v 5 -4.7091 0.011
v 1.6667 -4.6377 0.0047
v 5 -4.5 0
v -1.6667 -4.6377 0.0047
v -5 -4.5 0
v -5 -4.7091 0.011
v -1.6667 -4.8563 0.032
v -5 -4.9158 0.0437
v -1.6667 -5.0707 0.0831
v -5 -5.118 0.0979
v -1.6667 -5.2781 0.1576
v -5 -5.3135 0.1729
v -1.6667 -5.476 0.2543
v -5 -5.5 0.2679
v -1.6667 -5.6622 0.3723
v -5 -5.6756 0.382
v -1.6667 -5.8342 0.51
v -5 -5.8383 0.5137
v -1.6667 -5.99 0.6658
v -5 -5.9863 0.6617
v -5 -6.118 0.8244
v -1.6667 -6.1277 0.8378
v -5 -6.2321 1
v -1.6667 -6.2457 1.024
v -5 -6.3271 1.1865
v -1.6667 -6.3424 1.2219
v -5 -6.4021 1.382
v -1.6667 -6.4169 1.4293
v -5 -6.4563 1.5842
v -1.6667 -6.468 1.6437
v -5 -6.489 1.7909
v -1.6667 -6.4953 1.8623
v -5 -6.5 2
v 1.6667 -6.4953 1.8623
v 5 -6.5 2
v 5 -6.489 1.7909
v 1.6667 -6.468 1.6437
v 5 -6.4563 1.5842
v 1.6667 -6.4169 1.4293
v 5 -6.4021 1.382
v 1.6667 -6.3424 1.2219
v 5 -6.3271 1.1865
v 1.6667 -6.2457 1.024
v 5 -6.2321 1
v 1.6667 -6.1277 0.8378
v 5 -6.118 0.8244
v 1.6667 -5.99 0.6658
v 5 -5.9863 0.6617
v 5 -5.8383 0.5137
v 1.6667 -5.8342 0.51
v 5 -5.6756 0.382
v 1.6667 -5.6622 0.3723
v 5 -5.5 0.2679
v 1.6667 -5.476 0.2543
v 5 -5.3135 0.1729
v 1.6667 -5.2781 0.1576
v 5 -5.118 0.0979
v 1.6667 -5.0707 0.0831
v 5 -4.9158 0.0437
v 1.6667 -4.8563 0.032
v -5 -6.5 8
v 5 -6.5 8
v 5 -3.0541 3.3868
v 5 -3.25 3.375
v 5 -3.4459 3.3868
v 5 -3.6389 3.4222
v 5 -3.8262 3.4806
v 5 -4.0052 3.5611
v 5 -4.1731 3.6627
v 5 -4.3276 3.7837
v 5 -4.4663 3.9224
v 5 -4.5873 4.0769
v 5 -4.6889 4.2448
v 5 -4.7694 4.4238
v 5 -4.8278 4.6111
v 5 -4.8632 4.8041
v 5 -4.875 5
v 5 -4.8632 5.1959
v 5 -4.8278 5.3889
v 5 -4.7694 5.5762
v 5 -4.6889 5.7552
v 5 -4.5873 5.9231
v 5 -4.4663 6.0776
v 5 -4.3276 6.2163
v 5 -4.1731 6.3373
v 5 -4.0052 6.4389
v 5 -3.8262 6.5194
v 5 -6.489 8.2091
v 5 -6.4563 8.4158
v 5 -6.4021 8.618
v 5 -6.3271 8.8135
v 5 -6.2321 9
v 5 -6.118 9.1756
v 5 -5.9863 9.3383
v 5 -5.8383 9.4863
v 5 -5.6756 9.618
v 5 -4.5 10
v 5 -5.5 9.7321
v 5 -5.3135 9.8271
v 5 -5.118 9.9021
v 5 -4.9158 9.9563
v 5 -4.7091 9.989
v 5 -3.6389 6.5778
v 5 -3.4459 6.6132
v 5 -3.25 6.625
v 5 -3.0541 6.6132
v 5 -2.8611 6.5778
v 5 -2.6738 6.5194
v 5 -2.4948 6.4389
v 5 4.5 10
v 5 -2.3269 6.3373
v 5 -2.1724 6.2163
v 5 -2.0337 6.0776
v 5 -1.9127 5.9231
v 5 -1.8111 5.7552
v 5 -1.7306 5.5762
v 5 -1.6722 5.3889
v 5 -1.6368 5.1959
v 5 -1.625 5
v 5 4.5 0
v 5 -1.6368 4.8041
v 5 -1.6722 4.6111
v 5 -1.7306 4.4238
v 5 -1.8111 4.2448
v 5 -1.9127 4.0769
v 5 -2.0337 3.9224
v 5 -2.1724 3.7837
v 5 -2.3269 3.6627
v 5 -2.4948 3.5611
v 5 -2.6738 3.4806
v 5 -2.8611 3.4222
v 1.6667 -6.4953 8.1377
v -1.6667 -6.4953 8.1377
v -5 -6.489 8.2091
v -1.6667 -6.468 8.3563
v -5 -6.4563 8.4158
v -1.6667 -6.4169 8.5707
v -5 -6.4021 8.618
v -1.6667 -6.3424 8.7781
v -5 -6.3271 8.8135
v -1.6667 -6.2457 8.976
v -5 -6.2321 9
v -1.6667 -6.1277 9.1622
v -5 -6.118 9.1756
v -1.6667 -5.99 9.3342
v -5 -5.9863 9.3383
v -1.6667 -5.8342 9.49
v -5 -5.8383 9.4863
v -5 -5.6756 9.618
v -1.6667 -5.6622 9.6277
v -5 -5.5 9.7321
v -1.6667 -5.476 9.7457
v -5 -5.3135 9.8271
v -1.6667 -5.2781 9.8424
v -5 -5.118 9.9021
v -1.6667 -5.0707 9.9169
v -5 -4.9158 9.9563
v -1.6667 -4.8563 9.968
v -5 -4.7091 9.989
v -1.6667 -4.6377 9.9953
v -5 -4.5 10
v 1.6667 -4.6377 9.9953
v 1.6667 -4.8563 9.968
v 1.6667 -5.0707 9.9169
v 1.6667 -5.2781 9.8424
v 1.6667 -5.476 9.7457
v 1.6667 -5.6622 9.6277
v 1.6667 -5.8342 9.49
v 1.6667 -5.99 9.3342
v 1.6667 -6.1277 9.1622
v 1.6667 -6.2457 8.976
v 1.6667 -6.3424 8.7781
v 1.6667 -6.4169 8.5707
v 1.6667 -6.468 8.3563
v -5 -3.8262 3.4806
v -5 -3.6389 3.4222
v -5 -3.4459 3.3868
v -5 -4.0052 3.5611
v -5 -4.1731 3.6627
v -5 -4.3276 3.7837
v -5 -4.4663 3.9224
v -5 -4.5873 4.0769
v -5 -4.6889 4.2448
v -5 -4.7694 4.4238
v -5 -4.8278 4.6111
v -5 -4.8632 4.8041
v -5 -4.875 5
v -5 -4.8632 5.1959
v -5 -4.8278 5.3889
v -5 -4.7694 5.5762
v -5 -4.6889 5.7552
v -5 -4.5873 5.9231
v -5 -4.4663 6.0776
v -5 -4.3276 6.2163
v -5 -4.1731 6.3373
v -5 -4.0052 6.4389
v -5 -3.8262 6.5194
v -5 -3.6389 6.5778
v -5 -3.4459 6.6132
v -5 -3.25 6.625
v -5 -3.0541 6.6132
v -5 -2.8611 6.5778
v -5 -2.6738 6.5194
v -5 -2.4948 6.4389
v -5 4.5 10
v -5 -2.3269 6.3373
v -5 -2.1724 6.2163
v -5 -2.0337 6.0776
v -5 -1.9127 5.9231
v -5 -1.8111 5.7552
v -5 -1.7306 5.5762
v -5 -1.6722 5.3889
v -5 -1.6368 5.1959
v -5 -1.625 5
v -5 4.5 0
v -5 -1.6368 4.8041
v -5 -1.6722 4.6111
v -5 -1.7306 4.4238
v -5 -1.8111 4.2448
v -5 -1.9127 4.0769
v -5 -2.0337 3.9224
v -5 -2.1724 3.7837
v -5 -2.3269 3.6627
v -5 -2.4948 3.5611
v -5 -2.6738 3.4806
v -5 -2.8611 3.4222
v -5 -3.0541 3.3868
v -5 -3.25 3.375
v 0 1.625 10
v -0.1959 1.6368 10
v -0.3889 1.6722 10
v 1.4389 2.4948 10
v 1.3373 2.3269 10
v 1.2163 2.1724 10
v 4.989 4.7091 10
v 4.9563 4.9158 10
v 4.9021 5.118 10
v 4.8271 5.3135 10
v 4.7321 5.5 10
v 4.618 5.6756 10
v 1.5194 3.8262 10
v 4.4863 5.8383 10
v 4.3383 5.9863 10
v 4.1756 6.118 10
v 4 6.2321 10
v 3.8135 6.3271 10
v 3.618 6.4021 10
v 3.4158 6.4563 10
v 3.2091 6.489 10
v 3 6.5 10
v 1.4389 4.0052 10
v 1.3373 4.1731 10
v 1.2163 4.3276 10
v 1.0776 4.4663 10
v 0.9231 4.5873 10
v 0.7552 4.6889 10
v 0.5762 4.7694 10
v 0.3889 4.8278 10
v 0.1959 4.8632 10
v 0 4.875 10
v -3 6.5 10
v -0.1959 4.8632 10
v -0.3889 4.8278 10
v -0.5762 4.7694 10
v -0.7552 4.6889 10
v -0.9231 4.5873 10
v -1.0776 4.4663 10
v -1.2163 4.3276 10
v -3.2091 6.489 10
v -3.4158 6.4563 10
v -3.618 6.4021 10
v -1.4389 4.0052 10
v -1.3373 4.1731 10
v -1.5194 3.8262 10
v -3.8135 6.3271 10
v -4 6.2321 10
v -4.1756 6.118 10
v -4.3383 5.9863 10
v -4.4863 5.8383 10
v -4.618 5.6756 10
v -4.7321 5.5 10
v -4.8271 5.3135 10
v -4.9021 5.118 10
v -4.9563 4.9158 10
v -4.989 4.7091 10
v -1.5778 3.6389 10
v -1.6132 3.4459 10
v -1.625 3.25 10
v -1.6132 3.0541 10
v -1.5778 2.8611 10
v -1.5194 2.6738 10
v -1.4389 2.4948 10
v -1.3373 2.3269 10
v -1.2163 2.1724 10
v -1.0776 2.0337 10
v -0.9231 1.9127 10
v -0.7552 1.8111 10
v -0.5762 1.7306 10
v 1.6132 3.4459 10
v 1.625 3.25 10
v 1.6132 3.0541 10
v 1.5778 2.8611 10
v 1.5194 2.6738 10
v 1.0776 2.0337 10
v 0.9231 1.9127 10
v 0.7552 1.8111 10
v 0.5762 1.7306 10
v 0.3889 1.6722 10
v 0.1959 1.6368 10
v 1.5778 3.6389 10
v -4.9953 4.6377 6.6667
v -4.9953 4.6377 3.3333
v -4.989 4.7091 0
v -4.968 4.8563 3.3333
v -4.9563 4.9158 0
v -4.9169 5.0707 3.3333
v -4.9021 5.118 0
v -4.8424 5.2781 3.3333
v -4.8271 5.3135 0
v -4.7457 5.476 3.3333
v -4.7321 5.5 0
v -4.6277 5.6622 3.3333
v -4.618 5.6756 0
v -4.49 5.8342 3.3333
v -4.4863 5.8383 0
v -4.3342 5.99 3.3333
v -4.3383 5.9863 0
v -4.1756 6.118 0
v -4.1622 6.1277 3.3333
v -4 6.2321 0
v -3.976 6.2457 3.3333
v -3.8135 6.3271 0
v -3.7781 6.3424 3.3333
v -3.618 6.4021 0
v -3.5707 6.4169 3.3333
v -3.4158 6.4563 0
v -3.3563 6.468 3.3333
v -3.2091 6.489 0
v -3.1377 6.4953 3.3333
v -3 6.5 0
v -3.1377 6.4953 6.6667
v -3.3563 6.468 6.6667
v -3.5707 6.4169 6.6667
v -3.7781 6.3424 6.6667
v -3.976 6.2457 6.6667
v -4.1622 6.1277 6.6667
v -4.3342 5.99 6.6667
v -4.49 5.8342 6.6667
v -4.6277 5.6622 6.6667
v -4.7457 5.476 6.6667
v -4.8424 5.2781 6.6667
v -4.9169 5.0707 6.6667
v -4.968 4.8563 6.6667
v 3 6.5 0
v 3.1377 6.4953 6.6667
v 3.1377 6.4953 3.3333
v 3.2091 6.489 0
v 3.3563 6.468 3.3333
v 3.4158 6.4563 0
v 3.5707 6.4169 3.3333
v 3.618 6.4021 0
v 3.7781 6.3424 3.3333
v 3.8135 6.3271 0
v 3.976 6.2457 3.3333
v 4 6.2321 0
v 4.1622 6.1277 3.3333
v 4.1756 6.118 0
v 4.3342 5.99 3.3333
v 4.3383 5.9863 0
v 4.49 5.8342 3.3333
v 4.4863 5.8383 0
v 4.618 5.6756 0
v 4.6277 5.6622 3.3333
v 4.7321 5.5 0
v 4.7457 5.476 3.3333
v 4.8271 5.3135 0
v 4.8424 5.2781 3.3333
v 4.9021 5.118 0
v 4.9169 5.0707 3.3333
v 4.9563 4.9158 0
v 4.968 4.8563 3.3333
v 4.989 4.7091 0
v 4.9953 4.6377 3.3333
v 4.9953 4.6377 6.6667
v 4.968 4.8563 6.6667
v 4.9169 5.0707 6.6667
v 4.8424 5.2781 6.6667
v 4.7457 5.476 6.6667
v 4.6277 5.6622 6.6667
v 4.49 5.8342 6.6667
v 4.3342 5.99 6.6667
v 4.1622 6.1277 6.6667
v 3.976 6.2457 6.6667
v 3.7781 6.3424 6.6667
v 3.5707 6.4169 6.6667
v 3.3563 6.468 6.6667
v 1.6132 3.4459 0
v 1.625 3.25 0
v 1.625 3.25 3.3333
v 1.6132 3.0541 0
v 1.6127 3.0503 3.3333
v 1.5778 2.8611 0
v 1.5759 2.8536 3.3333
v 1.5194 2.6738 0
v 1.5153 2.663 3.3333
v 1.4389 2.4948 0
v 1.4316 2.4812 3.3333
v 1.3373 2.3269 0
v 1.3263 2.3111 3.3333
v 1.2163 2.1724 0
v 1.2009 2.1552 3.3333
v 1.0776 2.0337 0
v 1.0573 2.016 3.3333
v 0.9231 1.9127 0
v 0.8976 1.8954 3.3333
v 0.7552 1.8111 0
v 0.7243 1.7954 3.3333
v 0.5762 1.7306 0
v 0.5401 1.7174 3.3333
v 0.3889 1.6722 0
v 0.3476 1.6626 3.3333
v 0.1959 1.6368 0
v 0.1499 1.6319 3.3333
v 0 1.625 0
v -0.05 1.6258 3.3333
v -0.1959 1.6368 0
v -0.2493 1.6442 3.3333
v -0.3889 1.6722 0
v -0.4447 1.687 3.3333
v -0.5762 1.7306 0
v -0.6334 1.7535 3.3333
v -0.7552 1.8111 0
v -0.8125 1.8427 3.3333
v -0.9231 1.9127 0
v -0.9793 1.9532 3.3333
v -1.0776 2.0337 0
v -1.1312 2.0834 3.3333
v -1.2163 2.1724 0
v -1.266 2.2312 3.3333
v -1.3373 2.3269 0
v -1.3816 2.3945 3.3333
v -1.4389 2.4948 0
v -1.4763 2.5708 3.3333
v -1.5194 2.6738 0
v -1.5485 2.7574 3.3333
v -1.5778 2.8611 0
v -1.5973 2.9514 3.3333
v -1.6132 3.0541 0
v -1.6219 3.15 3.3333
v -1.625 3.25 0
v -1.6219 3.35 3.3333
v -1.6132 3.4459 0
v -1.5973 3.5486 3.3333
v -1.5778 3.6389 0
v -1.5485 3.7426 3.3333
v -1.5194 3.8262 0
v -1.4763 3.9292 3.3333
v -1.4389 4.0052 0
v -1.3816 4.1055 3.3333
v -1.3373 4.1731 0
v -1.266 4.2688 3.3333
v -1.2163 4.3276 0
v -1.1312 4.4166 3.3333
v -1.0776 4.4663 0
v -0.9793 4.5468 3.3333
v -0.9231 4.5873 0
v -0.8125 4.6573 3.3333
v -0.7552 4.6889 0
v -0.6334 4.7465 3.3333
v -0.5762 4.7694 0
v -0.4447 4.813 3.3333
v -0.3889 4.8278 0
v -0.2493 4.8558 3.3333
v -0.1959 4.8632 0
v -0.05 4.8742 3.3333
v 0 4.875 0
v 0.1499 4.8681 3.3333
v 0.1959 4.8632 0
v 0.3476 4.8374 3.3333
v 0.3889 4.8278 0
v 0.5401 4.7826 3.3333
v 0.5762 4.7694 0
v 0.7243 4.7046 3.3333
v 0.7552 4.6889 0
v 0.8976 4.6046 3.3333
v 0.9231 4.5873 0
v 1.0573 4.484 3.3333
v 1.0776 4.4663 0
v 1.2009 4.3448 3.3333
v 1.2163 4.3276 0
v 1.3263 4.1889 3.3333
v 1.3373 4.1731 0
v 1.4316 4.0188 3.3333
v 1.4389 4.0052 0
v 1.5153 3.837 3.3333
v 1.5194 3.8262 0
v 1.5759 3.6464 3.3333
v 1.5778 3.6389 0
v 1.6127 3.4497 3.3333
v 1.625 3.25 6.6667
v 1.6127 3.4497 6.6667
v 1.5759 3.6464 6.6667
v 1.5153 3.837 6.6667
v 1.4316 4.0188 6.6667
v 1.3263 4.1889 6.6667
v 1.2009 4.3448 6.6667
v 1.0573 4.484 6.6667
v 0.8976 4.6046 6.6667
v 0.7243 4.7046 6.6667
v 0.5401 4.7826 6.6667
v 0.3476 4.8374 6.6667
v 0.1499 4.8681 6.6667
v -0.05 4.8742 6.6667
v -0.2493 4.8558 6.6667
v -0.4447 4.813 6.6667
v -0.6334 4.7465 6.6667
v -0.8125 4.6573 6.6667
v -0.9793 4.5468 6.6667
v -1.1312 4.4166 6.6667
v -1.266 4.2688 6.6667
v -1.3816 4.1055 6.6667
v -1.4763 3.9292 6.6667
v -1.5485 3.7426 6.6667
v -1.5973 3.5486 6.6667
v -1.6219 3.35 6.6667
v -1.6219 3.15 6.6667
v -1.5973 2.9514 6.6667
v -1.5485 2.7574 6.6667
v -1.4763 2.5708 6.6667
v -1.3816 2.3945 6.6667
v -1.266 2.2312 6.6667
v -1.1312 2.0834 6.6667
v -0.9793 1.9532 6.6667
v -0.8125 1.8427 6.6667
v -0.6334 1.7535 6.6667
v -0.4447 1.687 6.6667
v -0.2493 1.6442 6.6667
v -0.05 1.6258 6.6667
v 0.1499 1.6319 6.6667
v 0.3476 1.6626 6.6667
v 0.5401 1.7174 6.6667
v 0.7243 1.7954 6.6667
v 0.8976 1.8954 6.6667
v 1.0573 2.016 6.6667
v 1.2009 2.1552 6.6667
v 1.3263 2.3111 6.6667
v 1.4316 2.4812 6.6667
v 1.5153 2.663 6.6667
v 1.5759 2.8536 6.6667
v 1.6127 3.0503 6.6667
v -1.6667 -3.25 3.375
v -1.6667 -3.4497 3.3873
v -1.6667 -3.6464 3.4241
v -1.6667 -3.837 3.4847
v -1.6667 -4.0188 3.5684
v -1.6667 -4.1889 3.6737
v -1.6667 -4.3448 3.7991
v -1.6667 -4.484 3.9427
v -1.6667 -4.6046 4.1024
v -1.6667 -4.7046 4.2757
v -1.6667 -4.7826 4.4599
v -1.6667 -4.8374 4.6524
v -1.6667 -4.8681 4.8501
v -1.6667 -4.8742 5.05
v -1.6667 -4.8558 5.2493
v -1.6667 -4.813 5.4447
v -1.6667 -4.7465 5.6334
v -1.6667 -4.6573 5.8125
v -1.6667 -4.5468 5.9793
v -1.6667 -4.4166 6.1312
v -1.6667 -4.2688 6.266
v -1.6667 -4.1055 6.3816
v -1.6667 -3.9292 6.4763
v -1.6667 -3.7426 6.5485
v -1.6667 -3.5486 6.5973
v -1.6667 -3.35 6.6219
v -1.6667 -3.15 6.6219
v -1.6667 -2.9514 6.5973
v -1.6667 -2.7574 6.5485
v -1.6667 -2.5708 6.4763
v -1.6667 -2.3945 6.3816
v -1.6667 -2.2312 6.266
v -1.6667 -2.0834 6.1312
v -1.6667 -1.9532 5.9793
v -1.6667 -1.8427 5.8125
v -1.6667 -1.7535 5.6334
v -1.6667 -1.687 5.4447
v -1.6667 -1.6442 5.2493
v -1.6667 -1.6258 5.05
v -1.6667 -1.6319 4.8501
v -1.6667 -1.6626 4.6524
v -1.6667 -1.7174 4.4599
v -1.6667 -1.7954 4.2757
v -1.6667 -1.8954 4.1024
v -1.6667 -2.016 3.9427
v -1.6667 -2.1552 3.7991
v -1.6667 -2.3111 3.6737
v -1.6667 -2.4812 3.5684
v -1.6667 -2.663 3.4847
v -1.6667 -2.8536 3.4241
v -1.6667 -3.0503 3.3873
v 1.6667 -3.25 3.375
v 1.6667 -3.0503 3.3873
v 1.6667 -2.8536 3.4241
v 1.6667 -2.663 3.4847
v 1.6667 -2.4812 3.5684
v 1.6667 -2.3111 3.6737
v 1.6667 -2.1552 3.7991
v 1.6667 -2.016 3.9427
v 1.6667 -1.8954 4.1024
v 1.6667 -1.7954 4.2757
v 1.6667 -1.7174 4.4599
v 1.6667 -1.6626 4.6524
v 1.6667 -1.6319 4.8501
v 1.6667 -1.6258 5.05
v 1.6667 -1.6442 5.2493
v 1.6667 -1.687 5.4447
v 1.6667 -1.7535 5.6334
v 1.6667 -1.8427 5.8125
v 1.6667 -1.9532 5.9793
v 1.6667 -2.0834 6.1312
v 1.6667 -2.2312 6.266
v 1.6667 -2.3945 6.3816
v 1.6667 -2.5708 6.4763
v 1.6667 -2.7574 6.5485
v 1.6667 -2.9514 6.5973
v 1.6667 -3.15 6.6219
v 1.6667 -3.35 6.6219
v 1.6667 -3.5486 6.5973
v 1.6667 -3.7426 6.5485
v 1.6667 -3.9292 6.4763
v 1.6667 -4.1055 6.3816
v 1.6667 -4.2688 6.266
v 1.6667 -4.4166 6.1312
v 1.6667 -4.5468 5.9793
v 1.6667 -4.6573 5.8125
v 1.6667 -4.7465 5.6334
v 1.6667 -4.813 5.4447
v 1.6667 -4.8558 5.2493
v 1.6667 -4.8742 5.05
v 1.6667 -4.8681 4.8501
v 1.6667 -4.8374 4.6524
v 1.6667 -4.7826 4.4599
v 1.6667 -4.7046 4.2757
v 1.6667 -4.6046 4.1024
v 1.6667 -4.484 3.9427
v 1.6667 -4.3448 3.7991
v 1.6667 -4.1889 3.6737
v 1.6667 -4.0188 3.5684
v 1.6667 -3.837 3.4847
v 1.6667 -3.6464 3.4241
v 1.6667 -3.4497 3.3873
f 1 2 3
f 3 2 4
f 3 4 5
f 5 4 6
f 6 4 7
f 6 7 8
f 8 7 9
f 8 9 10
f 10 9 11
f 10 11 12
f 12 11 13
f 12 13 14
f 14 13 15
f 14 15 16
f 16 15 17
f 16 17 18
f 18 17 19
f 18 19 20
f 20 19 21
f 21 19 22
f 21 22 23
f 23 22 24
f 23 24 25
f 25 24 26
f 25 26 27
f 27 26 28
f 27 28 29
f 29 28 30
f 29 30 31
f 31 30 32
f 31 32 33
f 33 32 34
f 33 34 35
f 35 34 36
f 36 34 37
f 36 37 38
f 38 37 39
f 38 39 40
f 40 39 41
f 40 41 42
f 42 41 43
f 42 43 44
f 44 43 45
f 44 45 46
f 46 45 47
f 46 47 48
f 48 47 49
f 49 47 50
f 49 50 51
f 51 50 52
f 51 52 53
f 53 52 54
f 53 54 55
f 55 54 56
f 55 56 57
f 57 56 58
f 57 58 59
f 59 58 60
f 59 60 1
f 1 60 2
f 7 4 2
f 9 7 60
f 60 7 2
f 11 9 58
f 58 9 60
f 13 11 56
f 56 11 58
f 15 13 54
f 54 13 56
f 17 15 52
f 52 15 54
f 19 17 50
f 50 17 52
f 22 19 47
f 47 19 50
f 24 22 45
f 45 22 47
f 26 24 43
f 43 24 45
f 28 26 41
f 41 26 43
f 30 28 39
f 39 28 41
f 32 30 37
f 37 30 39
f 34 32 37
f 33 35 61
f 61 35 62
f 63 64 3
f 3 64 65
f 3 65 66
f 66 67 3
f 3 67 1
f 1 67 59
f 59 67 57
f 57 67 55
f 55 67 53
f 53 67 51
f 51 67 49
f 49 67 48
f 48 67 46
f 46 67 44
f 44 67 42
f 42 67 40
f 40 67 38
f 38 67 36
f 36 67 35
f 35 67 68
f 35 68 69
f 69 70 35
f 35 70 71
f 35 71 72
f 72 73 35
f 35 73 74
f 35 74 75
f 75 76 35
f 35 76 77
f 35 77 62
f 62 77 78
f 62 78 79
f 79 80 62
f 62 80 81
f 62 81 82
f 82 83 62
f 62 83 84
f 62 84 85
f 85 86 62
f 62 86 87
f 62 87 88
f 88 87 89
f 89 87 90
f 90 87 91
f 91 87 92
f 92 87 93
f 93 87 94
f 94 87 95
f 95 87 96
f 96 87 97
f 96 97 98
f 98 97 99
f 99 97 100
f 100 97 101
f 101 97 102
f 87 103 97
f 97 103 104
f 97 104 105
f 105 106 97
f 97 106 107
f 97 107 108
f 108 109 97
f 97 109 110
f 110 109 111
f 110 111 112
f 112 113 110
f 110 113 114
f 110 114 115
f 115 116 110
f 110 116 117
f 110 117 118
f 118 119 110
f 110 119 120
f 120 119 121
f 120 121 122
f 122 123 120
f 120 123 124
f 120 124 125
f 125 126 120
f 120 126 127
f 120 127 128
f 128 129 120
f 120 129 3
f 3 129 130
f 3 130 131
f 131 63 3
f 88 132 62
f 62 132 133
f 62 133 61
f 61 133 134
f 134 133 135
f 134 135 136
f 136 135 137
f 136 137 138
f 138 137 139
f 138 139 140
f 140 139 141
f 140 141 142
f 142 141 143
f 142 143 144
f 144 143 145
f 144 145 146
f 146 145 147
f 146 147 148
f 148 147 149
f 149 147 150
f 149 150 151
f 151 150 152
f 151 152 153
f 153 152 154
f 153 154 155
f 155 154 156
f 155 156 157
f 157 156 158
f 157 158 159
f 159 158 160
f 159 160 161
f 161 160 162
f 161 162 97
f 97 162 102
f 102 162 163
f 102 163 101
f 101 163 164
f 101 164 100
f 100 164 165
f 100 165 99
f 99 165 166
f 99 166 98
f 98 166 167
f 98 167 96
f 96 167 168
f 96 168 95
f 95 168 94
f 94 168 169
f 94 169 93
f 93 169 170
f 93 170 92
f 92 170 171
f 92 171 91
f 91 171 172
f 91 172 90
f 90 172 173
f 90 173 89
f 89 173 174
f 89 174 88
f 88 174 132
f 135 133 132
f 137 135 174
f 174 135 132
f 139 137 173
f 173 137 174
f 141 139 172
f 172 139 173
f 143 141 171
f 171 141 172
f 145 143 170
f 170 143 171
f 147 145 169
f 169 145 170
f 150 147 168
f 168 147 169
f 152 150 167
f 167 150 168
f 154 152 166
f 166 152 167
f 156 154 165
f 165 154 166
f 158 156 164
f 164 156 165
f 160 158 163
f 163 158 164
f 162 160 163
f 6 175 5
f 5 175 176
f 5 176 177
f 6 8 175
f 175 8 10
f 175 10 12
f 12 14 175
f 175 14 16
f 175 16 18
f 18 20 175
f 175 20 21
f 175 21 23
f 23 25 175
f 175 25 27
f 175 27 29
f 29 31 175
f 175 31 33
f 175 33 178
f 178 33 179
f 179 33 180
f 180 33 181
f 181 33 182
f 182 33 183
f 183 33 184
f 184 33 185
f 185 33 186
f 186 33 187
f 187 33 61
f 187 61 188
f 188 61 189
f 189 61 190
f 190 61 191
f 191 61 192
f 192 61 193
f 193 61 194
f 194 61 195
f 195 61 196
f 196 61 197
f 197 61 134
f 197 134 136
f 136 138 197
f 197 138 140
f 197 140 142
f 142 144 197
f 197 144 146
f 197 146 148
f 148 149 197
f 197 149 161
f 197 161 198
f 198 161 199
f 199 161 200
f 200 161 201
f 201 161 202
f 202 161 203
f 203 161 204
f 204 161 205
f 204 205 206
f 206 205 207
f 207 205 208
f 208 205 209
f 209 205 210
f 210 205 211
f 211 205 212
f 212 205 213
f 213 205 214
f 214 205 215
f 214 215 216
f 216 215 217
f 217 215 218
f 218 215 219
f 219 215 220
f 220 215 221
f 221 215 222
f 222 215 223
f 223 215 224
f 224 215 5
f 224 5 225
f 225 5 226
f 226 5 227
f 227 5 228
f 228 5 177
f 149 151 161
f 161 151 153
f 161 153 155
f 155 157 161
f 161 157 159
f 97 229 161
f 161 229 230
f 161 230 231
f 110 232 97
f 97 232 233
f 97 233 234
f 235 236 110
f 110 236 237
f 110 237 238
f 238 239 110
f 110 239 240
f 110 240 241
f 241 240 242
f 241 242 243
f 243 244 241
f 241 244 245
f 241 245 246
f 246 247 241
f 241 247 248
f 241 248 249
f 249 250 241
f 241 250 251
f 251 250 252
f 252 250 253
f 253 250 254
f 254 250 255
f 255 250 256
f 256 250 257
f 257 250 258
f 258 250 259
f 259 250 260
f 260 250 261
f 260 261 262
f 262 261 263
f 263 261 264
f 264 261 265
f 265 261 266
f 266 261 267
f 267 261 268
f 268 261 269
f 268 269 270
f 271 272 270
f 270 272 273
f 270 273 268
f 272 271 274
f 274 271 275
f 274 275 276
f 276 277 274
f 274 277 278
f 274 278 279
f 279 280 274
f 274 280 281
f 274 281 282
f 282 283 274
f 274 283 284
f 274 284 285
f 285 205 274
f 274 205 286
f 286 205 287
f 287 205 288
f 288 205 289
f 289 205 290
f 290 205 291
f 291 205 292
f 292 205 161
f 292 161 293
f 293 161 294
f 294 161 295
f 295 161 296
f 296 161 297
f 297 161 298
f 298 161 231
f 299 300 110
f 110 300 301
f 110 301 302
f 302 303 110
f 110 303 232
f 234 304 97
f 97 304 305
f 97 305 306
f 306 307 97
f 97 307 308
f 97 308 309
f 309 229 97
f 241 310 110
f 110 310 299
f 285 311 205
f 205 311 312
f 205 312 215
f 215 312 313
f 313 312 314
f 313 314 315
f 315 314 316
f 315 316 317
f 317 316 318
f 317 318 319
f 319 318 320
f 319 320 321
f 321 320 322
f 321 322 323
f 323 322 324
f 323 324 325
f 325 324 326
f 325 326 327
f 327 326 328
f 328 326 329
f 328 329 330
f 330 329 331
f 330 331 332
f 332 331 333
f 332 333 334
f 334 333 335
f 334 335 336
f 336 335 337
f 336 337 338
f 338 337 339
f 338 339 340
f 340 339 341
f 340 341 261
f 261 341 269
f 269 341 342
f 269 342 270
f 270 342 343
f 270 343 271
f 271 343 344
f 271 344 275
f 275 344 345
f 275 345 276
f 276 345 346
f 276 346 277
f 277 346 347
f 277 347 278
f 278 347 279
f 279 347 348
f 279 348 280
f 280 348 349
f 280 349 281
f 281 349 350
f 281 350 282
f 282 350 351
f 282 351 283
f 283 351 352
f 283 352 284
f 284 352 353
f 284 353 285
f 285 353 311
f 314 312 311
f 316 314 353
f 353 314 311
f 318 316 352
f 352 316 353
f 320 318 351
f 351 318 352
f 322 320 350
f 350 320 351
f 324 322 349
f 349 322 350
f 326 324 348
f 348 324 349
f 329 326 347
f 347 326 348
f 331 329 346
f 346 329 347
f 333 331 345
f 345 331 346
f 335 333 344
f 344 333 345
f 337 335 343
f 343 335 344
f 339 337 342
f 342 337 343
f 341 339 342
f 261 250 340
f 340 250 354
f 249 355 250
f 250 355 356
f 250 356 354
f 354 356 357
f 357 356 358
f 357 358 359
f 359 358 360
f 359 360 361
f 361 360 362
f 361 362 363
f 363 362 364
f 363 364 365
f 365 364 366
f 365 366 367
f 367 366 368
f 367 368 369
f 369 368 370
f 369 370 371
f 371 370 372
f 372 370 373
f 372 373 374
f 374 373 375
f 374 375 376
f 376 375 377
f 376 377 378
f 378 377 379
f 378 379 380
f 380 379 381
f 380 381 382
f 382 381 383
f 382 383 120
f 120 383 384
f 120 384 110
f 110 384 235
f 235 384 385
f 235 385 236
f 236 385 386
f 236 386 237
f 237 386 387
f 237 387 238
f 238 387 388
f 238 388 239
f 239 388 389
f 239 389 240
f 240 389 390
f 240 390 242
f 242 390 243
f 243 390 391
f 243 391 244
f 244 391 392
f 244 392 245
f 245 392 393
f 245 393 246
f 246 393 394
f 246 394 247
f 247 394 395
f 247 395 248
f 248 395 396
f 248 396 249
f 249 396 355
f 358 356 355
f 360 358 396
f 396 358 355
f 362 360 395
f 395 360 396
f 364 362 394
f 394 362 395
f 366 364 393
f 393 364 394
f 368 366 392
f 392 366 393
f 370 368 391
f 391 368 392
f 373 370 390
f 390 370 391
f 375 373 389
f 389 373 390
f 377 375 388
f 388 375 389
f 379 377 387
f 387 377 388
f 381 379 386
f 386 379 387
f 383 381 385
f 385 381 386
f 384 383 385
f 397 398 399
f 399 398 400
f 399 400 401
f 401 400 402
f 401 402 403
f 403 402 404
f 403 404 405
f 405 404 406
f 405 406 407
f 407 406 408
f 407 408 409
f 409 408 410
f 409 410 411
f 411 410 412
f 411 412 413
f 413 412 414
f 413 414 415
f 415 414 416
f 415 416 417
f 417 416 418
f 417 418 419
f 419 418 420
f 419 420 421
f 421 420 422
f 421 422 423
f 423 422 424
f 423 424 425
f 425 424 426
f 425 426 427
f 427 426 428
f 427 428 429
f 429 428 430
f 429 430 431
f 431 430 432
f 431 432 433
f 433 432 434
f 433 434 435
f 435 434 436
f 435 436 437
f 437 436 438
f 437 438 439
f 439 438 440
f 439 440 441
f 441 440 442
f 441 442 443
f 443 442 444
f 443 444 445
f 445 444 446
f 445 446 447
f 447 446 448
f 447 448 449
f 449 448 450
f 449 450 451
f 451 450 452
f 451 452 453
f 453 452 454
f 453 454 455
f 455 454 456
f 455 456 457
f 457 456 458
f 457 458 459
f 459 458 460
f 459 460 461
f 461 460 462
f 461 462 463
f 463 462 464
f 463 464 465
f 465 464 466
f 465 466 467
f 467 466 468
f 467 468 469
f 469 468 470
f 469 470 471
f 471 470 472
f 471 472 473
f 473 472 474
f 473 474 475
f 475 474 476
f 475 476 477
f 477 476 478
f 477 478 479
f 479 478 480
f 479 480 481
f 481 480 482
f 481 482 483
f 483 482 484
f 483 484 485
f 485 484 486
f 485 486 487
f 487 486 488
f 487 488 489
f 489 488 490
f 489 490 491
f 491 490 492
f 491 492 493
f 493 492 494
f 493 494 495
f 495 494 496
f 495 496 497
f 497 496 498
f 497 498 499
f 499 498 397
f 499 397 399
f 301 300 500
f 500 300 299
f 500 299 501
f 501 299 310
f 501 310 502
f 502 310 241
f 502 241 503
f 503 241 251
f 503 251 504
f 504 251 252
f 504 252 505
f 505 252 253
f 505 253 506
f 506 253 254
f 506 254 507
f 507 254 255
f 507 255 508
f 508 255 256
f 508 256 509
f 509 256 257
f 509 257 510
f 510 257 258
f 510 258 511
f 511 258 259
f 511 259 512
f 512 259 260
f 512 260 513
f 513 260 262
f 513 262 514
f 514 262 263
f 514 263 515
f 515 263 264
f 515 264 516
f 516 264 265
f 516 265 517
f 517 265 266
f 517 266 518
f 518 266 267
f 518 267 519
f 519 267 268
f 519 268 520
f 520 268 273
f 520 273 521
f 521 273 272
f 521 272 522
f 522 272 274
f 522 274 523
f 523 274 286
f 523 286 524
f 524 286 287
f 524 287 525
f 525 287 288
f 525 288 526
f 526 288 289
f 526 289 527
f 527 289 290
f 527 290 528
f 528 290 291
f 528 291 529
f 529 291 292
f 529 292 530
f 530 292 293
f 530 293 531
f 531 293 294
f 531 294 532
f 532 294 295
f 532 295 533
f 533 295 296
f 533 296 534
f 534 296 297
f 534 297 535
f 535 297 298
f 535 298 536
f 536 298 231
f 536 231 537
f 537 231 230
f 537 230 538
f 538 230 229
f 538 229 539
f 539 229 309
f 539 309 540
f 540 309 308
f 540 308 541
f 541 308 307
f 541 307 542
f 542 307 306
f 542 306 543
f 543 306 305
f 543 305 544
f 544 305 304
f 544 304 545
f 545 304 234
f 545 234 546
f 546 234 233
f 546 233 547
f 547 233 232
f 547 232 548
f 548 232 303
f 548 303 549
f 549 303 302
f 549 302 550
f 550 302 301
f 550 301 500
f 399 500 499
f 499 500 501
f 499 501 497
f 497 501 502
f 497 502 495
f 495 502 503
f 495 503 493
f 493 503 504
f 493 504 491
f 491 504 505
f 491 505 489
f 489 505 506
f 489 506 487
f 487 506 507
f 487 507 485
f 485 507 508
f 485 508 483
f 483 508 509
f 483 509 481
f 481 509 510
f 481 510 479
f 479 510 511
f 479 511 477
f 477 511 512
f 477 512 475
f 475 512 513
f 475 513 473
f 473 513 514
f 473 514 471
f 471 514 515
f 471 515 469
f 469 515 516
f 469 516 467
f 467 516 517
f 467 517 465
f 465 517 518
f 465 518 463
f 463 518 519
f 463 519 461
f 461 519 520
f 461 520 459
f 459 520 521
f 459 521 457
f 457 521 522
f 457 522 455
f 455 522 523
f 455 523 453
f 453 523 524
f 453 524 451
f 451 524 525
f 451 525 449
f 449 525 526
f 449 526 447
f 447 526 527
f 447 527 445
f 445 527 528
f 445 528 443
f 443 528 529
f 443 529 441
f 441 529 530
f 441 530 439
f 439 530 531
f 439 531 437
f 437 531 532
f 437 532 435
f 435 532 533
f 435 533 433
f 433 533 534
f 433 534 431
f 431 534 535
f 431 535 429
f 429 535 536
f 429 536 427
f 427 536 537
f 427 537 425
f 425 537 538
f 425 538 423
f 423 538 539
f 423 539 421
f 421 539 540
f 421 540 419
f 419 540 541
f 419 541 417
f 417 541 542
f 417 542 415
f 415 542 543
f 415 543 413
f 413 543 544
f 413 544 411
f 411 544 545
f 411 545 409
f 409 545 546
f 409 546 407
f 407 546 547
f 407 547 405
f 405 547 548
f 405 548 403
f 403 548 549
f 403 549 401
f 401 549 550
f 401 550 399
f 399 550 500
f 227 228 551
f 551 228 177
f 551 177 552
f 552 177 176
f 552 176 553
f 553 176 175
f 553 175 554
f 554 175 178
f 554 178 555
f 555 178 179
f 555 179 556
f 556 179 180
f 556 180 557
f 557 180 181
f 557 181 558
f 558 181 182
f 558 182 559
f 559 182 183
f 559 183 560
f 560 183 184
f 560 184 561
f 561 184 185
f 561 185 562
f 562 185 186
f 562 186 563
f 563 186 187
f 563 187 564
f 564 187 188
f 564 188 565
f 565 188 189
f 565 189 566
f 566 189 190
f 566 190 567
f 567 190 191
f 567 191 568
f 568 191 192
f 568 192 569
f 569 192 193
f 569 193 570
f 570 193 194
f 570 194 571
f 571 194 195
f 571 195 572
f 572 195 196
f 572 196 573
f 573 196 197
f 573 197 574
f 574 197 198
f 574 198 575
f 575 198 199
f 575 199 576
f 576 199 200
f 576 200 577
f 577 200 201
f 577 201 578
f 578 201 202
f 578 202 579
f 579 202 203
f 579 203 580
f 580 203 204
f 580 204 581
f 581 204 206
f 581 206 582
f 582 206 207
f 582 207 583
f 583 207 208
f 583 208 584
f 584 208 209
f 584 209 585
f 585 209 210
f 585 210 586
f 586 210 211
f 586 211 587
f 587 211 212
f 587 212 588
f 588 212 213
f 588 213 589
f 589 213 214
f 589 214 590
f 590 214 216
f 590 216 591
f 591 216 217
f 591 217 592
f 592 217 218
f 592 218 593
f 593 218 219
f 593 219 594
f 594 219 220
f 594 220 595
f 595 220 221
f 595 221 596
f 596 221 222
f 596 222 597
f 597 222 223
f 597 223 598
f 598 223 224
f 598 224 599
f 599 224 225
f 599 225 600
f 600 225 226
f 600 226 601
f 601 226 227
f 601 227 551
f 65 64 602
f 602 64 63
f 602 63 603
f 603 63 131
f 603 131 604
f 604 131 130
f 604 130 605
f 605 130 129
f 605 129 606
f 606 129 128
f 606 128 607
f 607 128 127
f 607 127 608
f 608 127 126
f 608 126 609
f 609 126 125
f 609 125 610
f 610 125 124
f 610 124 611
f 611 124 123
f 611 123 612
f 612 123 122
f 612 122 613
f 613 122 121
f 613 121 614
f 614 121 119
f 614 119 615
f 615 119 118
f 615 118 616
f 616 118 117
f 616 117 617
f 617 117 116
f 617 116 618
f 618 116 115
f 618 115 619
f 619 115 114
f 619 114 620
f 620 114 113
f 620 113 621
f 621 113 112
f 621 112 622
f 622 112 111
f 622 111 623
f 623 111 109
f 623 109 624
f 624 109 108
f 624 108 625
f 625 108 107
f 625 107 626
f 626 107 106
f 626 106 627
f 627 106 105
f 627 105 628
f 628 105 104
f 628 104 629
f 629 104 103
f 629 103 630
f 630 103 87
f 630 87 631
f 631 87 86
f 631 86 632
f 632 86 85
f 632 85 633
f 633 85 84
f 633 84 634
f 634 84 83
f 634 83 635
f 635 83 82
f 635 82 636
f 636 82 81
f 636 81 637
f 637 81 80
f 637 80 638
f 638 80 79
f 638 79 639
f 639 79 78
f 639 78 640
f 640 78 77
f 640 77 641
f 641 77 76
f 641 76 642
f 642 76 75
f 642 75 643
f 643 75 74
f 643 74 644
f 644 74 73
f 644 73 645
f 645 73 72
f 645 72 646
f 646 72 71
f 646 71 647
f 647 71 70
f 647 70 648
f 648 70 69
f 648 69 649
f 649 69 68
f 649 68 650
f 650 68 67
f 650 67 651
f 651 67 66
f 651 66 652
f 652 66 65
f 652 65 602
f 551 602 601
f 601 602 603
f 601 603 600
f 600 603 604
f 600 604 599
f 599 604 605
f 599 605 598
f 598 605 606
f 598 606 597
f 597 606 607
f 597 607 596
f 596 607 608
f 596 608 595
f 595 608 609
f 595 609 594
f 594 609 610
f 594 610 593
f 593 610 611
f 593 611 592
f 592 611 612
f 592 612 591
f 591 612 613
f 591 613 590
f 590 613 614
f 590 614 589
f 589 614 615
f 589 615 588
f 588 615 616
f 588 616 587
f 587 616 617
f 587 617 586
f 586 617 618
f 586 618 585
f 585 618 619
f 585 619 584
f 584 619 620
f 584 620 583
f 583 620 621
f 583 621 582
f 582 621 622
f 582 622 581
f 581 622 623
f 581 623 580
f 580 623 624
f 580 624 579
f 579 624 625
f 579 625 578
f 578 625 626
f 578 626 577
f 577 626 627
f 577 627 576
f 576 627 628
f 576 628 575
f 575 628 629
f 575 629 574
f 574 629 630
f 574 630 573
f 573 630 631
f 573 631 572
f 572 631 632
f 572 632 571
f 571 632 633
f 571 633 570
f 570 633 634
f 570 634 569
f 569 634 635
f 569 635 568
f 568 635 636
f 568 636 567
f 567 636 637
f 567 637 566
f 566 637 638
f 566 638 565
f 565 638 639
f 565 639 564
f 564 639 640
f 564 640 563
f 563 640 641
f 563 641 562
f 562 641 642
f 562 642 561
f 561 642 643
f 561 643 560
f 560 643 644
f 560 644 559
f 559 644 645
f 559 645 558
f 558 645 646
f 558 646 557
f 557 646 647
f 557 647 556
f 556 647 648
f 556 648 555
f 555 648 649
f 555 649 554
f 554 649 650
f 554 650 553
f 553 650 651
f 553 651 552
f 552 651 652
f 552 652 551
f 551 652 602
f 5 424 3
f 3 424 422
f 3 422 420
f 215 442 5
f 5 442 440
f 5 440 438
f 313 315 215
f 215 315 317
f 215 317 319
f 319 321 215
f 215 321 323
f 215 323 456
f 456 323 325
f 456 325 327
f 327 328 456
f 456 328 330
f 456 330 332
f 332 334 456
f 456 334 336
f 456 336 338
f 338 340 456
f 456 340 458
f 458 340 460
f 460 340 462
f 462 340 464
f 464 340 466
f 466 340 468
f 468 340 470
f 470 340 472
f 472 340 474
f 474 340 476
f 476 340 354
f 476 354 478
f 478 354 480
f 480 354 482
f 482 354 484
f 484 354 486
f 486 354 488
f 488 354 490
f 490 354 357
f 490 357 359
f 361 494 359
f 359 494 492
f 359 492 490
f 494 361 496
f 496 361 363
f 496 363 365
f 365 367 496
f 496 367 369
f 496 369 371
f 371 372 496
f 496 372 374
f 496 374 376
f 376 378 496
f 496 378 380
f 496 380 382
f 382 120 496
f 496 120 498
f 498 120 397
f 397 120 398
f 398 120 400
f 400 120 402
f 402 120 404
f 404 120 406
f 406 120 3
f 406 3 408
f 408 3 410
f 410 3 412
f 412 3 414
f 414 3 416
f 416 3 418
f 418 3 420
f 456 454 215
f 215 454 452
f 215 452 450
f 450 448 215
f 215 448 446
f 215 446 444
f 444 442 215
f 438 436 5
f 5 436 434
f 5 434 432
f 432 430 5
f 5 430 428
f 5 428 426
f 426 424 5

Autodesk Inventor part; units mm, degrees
ref_plane "YZ Plane" through (0, 0, 0) normal (1, 0, 0) x (0, 1, 0)
ref_plane "XZ Plane" through (0, 0, 0) normal (0, 1, 0) x (-1, 0, 0)
ref_plane "XY Plane" through (0, 0, 0) normal (0, 0, 1) x (1, 0, 0)
sketch "Sketch7" plane through (0, 0, 0) normal (0, 0, 1) x (1, 0, 0)
  line L0 (-5, 6.5) -> (5, 6.5)
  line L1 (5, 6.5) -> (5, -6.5)
  line L2 (5, -6.5) -> (-5, -6.5)
  line L3 (-5, -6.5) -> (-5, 6.5)
  line L4 (0, 6.5) -> (0, -6.5)
  line L5 (-5, 0) -> (5, 0)
  point P0 (0, 0)
  point P1 (0, 0)
  dimension "d14" = 10
  dimension "d15" = 13
extrude "Extrusion4" add sketch "Sketch7" along normal blind 10
sketch "Sketch8" plane through (5, -6.5, 0) normal (1, 0, 0) x (0, 0, -1)
  line L0 (0, 13) -> (-10, 13) projected
  line L1 (-5, 13) -> (-5, 0)
  line L2 (0, 0) -> (-10, 0) projected
  line L3 (0, 6.5) -> (-10, 6.5)
  line L4 (-10, 13) -> (-10, 0) projected
  line L5 (0, 0) -> (-10, 0) projected
  circle A0 centre (-5, 3.25) radius 1.625
  dimension "d18" = 3.25
  dimension "d27" = 3.25
extrude "Extrusion5" cut sketch "Sketch8" against normal through all contours A0 L1 | L1 A0
sketch "Sketch9" plane through (0, 0, 10) normal (0, 0, 1) x (1, 0, 0)
  line L0 (-5, 6.5) -> (-5, -6.5) projected
  line L1 (-5, 0) -> (5, 0)
  line L2 (5, -6.5) -> (5, 6.5) projected
  line L3 (0, 0) -> (0, 1.625)
  line L4 (5, 6.5) -> (-5, 6.5) projected
  circle A0 centre (0, 3.25) radius 1.625
  dimension "d22" = 3.25
  dimension "d28" = 3.25
extrude "Extrusion6" cut sketch "Sketch9" against normal through all contours A0
fillet "Fillet2" radius 2 4 edges at (5, 6.5, 5) (-5, 6.5, 5) (0, -6.5, 10) (0, -6.5, 0)
properties part number "CardanJoint"
